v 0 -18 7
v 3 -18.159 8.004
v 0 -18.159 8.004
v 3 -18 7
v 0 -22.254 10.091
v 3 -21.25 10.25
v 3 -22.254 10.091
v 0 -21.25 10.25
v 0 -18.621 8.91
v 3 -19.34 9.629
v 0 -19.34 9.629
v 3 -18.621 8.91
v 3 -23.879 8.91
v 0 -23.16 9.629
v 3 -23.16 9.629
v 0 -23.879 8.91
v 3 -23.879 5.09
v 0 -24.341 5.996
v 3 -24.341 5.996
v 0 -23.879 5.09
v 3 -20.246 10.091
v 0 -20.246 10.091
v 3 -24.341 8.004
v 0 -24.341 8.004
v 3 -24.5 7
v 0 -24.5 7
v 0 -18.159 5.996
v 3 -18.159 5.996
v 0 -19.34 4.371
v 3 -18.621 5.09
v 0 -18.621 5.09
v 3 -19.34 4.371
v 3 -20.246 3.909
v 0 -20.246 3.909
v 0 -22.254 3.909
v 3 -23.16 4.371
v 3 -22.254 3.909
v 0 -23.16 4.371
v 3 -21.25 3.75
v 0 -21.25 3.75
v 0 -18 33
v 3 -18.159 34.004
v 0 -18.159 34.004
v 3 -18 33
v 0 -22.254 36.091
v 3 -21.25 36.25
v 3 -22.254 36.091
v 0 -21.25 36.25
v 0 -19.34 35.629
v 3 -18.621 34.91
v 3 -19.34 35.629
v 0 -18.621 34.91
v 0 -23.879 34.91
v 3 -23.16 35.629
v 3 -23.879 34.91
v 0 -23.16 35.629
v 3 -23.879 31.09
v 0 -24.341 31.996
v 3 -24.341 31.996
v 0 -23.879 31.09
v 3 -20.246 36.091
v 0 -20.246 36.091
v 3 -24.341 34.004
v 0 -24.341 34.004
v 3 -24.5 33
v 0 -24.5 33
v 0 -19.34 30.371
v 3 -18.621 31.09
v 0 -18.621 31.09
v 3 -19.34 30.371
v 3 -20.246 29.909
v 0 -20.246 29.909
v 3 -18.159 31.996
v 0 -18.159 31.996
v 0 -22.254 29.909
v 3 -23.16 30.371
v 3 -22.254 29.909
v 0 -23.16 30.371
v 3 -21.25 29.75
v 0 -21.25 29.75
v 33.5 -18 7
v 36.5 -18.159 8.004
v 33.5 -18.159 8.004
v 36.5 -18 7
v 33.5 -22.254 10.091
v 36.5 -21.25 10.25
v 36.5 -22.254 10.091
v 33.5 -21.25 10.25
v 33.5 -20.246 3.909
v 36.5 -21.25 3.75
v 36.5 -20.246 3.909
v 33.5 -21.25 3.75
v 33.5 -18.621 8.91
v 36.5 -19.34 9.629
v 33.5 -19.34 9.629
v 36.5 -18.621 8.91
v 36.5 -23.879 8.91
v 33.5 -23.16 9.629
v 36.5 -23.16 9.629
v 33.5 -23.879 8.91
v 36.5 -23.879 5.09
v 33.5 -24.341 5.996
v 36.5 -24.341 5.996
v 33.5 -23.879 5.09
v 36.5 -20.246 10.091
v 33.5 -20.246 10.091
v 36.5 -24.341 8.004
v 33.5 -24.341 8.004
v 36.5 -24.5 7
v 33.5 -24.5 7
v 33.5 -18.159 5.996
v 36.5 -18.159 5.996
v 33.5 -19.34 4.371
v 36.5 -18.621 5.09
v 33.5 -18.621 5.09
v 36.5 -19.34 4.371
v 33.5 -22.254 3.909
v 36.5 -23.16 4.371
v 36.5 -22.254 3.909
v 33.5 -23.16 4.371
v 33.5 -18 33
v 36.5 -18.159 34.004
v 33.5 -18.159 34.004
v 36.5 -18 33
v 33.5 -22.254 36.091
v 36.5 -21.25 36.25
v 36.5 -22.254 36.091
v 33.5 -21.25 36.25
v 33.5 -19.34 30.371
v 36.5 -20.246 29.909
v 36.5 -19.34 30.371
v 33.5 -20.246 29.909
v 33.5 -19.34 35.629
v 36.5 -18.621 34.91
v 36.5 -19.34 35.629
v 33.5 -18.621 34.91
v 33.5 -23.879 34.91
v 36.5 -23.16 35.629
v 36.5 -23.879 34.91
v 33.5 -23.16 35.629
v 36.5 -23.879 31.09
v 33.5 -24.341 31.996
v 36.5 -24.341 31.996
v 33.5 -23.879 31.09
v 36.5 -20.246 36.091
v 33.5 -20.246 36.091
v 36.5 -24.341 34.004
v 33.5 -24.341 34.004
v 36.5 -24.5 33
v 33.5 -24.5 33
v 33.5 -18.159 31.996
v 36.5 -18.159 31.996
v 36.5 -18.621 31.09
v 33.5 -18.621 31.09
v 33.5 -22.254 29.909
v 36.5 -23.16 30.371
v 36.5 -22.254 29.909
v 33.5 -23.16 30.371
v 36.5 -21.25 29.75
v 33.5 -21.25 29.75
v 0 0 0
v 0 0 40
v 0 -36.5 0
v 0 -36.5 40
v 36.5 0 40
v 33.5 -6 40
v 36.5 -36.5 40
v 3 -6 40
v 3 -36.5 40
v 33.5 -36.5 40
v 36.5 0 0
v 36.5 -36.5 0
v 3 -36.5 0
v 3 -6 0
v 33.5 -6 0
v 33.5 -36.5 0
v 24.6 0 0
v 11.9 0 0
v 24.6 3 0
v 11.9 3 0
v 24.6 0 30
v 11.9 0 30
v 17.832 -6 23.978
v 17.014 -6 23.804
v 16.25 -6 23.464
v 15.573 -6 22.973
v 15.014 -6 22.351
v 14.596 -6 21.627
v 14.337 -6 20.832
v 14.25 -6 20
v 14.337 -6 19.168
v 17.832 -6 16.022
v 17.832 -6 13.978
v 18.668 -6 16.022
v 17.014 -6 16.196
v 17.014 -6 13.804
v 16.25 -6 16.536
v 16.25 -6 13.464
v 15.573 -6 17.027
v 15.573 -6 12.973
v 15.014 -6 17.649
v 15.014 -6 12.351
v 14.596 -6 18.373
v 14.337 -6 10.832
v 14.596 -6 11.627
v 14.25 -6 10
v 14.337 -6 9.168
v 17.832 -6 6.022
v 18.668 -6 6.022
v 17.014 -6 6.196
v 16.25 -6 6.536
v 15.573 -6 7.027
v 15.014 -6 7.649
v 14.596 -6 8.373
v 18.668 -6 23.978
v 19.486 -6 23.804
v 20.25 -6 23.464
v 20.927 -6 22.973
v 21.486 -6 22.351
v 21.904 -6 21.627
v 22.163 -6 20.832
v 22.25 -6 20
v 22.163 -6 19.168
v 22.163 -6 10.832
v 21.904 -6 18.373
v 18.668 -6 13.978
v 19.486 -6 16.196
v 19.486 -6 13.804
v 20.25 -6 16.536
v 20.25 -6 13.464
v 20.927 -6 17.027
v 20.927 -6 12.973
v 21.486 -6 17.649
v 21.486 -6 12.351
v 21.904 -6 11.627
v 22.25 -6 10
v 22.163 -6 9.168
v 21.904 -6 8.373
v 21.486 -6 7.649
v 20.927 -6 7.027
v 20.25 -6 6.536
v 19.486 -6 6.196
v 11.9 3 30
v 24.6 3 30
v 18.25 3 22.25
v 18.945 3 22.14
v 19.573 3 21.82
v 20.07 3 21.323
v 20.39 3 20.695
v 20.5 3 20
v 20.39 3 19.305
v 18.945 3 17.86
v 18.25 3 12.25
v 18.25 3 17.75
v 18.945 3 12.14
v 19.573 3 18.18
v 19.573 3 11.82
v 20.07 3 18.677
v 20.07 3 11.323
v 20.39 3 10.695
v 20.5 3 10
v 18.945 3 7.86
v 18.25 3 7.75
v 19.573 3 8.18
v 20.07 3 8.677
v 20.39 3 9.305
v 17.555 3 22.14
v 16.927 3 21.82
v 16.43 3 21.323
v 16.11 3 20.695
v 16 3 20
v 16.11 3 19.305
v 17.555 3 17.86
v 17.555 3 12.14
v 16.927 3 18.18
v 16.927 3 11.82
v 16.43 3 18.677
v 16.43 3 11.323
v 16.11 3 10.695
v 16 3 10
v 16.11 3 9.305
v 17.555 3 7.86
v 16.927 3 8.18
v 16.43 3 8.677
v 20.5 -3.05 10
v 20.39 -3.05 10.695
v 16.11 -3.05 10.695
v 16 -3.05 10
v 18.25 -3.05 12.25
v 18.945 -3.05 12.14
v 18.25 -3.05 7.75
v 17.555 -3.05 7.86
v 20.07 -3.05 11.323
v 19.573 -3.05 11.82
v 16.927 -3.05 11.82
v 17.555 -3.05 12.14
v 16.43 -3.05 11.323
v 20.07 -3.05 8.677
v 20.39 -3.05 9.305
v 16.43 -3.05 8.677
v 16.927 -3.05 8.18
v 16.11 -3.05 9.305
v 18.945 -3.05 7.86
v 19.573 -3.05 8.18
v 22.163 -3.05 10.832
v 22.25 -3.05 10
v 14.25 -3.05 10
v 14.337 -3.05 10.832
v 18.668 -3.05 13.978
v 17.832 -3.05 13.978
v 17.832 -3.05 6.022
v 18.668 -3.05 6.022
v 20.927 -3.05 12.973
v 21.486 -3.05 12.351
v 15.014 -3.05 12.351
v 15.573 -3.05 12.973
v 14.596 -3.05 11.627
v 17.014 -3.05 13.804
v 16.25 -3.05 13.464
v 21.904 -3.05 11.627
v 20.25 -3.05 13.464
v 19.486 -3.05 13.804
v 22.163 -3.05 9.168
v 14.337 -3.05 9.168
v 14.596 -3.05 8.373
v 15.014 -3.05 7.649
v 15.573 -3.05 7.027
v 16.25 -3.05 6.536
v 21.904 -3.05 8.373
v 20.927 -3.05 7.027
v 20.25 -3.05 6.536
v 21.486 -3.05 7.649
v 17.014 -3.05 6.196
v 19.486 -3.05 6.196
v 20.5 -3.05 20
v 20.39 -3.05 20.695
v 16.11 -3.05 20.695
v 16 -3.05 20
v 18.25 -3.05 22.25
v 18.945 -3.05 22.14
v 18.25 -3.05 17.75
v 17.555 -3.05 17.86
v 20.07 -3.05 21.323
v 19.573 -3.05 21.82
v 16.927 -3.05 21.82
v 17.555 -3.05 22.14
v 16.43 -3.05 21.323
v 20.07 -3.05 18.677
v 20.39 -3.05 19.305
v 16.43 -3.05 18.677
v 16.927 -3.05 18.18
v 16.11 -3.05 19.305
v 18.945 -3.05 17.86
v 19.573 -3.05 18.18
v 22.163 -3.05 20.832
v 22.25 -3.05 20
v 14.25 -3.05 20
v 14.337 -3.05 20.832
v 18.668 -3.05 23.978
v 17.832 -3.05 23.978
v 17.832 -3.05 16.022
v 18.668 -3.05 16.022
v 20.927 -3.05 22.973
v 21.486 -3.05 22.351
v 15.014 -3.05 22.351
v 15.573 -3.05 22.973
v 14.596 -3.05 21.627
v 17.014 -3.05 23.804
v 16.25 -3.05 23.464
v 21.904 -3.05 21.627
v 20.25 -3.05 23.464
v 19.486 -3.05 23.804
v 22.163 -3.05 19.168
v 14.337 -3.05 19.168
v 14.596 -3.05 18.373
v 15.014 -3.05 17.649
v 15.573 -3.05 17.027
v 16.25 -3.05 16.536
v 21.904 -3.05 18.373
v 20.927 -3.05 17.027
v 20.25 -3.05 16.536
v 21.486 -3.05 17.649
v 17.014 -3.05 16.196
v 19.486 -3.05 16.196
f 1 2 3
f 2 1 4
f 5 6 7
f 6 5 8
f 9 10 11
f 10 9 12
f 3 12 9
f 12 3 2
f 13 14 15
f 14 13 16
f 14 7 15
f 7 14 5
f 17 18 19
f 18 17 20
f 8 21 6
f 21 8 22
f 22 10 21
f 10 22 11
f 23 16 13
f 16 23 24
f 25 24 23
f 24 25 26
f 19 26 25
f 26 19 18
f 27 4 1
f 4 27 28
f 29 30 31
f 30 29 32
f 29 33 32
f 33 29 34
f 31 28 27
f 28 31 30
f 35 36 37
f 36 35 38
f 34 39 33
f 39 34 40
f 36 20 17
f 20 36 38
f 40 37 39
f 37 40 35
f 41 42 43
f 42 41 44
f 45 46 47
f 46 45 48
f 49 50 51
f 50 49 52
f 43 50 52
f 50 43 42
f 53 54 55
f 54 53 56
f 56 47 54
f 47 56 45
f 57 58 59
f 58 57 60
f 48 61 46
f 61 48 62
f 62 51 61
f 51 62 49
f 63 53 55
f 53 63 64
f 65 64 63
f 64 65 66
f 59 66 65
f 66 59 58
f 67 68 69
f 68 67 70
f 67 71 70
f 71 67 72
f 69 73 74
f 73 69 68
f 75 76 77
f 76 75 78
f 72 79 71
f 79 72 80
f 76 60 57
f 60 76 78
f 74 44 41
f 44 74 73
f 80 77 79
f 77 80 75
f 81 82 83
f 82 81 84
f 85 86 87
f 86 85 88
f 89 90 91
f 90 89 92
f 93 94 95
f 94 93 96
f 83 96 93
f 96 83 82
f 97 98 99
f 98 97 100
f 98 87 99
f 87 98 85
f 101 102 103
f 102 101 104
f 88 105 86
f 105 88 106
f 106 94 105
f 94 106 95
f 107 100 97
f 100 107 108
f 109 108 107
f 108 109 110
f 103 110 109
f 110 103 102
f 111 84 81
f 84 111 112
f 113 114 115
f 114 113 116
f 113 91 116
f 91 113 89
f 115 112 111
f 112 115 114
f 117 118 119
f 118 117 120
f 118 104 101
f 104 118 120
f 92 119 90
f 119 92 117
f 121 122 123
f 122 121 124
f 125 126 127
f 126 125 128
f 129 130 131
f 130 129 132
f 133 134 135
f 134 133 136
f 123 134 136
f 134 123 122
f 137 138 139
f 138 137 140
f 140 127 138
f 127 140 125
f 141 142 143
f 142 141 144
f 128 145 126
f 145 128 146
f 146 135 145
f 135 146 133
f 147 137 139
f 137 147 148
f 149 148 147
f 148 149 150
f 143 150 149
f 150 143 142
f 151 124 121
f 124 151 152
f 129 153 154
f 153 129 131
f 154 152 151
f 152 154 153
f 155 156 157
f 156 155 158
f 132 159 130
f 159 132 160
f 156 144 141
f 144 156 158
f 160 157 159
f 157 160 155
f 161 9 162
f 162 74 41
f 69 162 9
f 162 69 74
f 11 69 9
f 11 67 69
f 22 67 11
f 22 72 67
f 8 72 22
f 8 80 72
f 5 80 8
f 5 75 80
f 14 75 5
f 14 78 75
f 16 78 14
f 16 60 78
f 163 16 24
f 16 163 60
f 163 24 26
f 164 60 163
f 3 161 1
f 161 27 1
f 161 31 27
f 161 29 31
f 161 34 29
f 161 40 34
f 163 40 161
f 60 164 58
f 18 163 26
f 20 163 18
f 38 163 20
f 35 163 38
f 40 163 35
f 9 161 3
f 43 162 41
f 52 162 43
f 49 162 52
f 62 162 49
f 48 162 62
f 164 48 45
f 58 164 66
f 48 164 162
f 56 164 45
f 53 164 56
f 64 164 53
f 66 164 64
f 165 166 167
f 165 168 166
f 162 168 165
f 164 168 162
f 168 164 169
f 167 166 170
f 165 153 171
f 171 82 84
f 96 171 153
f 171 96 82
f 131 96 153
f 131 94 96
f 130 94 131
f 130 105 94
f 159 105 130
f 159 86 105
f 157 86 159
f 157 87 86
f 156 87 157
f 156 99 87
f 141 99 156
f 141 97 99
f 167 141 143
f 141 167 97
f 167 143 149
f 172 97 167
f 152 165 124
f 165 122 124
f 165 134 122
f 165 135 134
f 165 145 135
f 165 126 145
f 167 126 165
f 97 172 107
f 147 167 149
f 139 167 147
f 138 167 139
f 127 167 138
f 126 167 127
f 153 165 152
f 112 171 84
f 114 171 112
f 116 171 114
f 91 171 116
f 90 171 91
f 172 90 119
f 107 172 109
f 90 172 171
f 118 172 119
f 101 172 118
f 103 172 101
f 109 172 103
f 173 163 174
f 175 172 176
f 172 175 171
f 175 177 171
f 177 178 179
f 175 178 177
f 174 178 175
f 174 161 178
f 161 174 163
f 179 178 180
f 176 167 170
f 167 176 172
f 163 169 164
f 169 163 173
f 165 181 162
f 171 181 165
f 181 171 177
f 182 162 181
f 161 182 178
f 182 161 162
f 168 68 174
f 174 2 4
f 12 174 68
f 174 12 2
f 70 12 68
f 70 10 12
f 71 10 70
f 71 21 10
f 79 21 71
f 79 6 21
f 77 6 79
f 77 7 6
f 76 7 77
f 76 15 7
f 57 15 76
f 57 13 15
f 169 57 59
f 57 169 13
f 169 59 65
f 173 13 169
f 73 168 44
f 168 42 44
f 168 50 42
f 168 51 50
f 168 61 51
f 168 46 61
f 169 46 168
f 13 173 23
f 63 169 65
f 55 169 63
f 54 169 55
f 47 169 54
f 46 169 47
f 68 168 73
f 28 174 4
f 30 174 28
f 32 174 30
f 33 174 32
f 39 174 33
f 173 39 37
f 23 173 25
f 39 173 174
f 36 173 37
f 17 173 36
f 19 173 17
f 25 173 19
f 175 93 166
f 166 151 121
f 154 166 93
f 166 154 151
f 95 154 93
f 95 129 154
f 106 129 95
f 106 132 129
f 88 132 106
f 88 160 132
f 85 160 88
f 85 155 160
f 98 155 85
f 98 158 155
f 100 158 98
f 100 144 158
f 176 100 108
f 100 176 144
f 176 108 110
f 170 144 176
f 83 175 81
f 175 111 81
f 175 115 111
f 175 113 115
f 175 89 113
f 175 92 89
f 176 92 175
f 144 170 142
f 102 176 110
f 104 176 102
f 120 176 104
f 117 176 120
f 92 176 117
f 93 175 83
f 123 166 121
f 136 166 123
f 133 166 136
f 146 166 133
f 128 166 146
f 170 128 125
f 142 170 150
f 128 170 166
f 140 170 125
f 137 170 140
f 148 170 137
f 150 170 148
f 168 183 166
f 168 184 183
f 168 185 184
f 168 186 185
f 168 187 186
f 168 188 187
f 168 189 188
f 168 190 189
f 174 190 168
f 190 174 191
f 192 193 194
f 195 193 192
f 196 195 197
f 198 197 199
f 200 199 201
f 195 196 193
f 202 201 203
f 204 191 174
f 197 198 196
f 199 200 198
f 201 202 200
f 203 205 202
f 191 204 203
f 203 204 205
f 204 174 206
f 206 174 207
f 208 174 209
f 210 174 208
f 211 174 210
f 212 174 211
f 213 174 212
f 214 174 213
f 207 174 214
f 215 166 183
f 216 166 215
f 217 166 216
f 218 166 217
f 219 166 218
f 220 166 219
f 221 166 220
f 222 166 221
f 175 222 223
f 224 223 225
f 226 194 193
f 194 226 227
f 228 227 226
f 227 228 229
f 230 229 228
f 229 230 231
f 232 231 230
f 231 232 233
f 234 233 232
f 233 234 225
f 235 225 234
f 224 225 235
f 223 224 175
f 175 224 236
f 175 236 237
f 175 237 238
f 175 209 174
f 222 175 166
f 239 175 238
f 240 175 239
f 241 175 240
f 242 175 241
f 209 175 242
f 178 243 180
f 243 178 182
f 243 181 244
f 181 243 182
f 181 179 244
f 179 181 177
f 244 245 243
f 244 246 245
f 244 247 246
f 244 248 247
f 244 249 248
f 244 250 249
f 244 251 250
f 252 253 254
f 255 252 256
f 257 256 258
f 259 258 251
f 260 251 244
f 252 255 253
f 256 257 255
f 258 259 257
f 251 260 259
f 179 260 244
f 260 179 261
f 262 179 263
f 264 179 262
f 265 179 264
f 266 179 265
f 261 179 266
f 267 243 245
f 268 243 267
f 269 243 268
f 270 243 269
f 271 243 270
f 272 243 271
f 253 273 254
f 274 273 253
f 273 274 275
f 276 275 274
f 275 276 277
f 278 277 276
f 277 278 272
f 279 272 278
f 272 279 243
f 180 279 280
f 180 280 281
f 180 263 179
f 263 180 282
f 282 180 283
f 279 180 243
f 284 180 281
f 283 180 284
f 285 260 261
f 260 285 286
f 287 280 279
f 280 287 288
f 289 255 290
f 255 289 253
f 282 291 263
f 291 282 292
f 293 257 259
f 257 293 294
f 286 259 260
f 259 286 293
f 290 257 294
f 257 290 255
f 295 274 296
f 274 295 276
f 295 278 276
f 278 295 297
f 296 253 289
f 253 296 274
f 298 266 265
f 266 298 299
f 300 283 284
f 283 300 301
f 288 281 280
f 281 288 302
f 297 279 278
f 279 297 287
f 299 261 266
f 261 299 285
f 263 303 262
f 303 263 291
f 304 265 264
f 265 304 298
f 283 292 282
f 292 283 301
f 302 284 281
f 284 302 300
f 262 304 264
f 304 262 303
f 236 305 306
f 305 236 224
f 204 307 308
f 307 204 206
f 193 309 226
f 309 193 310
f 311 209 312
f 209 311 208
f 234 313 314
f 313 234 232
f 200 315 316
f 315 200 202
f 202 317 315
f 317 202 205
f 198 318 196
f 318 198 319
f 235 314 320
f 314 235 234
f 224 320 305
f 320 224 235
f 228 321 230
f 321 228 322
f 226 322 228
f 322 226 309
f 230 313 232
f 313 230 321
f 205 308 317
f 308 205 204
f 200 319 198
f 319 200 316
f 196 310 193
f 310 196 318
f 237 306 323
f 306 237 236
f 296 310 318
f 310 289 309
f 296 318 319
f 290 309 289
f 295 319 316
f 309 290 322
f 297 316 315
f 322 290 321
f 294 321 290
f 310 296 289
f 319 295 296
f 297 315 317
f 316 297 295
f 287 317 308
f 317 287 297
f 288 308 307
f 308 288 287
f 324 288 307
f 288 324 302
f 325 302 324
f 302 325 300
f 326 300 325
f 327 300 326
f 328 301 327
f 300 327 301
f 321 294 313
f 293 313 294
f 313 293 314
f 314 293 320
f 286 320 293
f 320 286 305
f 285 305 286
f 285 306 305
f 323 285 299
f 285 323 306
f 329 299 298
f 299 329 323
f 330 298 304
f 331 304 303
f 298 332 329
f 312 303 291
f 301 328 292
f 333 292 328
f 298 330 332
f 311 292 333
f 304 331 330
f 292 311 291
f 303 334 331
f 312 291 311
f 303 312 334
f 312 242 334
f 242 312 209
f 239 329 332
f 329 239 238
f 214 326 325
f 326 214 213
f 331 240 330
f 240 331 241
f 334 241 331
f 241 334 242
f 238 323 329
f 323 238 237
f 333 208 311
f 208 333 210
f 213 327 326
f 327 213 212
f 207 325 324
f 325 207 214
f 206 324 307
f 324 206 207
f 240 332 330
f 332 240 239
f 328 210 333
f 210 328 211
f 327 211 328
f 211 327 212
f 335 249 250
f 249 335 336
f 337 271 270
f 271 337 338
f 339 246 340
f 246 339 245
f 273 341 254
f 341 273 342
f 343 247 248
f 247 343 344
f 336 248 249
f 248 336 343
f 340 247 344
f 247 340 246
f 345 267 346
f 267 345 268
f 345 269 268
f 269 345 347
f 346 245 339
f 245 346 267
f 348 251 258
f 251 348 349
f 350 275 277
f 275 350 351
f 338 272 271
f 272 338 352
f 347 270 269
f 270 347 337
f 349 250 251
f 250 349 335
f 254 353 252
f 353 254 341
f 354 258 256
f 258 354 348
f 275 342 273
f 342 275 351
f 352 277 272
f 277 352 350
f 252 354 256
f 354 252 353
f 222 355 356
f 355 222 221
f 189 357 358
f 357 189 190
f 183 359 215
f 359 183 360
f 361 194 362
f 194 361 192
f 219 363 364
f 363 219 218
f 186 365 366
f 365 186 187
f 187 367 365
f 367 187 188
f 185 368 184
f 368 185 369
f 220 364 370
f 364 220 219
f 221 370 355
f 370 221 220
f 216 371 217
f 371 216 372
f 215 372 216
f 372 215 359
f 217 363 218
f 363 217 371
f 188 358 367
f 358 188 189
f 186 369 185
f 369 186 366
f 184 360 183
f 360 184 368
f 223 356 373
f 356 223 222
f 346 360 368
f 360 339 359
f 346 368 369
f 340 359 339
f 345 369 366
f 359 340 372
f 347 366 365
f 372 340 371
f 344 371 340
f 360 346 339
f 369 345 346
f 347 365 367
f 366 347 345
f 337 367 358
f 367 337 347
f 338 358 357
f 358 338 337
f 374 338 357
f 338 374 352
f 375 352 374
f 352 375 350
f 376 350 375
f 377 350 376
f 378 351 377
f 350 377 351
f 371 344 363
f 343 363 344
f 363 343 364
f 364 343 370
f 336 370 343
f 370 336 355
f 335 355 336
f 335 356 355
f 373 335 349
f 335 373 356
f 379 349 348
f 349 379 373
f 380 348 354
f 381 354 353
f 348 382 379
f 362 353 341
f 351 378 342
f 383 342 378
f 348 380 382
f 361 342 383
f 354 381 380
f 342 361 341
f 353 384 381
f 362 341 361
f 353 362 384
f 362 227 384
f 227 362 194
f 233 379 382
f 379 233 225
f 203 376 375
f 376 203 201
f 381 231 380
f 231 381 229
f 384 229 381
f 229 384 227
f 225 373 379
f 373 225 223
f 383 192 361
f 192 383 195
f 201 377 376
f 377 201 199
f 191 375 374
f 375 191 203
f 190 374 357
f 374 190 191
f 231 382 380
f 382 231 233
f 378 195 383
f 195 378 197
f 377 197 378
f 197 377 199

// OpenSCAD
// file: lib/ALU_profile_holder_side.scad
include <../../parameters.scad>

module ALU_profile_holder_side(height) {
    wall_thickness = ALU_profile_holder_wall_thickness;
    
    //díry na přišroubování k Al profilům
    module screws_holes(diameter) {
        translate([0, 0, 7])
            rotate([90, 0, 90])
                cylinder(d=diameter, h=wall_thickness*2, center=true, $fn=20);
        
        translate([0, 0, height-7])
            rotate([90, 0, 90])
                cylinder(d=diameter, h=wall_thickness*2, center=true, $fn=20);
    }
    
    difference() {
        cube([ALU_profile_width+wall_thickness*2, ALU_profile_width + wall_thickness*2, height]);

        translate([wall_thickness, -0.1, -0.1])
            cube([ALU_profile_width, ALU_profile_width + 0.1, height + 0.2]);
        
        translate([wall_thickness*0.5, ALU_profile_width/2, 0]) {
            screws_holes(M6_screw_diameter);
            translate([ALU_profile_width+wall_thickness, 0, 0]) {
                screws_holes(M6_screw_diameter);
            }
        }
    }
}

ALU_profile_holder_side(30);
// file: ../parameters.scad
maximum_printable_size = 150;

layer_thickness = 0.3;
global_clearance = 0.5;


//Screw diameter and nut for M10 [mm]
M10_screw_diameter = 10.4;
M10_head_height = 10;
M10_head_diameter = 16+0.5;
M10_nut_height = 10.5;
M10_nut_diameter = 25.5;
M10_nut_pocket = 22.3;

//Screw diameter for M8 [mm]
M8_screw_diameter = 8.6;
M8_head_height = 8;
M8_head_diameter = 13.5;
M8_nut_height = 7.5;
M8_square_nut_thin_height = 4.5;
M8_nut_diameter = 14.4 + 0.5;
M8_nut_pocket = 13 + 0.5;
M8_washer_diameter = 16;
M8_washer_thickness = 1.5;


//Screw diameter and nut for M6 [mm]
M6_screw_diameter=6.5;
M6_head_diameter = 10+0.5;
M6_head_height = 6;
M6_nut_height = 4.9;
M6_nut_diameter = 11.8;
M6_nut_pocket = 10.4;
M6_square_nut_height = 3;
M6_square_nut_diameter = 10;
M6_washer_thickness = 1.6;

//Screw diameter and nut for M5 [mm]
M5_screw_diameter=5.5;
M5_head_height = 5;
M5_head_diameter = 13+0.5;
M5_nut_height = 4.5;
M5_nut_diameter = 9.4;
M5_nut_pocket = 8.4;

//Screw diameter and nut for M4 [mm]
M4_screw_diameter=4.5;
M4_screw_head_height = 4;
M4_nut_height = 3.2;
M4_nut_diameter = 8.4;
M4_nut_pocket = 7.5;

//Screw diameter and nut for M3 [mm]
M3_screw_diameter = 3.2;
M3_nut_height = 2.7;
M3_nut_diameter = 6.6;
M3_nut_pocket = 5.6;
M3_screw_head_height = 3;

//Screw diameter and nut for M2,5 [mm]
M2_5_screw_diameter = 2.7;
M2_5_nut_height = 2.3;
M2_5_nut_diameter = 6;
M2_5_nut_pocket = 5.5;

// kulove lozisko

bearing_efsm_08_h = 33+1;
bearing_efsm_08_m = 22;
bearing_efsm_08_db = 18;
bearing_efsm_08_ag = 10.5;
bearing_efsm_08_n = M4_screw_diameter;
bearing_efsm_08_a1 = 5.5;
bearing_efsm_08_d = 8.25;
bearing_efsm_08_B = 8; // ball height

bearing_efsm_10_h = 38+1;
bearing_efsm_10_m = 26;
bearing_efsm_10_db = 21.9;
bearing_efsm_10_ag = 12+0.2;
bearing_efsm_10_n = M5_screw_diameter;
bearing_efsm_10_a1 = 6.5;
bearing_efsm_10_d = 10.25;


bearing_efsm_12_width = 40+1;
bearing_efsm_12_h = bearing_efsm_12_width;
bearing_efsm_12_boltd = 28/2; // polovina vzdalenosti mezi srouby
bearing_efsm_12_m = bearing_efsm_12_boltd*2;
bearing_efsm_12_db = 25;
bearing_efsm_12_ag = 13;
bearing_efsm_12_a1 = 7;
bearing_efsm_12_n = M5_screw_diameter;
bearing_efsm_12_d = 12.15;
bearing_efsm_12_B = 10; // ball height
bearing_efsm_space = 1;

bearing_efsm_17_width = 54+1;
bearing_efsm_17_h = bearing_efsm_17_width;
bearing_efsm_17_boltd = 38/2; // polovina vzdalenosti mezi srouby
bearing_efsm_17_m = bearing_efsm_17_boltd*2;
bearing_efsm_17_db = 35;
bearing_efsm_17_ag = 18;
bearing_efsm_17_n = M6_screw_diameter;
bearing_efsm_17_a1 = 10;
bearing_efsm_17_B = 17; // ball height

//limcove lozisko
bearing_EFOM_10_L=26; //celkova sirka zakladny
bearing_EFOM_10_d1=10.3;//diametr otvoru real=10 mm
bearing_EFOM_10_dB=22;//diametr vystupku pro ulozeni lozika
bearing_EFOM_10_H=52;//celková delka zakladny
bearing_EFOM_10_J=36;// hole pitch
bearing_EFOM_10_A1=6.5;//vyska pouzdra
bearing_EFOM_10_Ag=12;//celkova vyska
bearing_EFOM_10_N1=5;//sirka otvoru pro sroub
bearing_EFOM_10_N2=8;//delka otvoru pro sroub
bearing_EFOM_10_m=36;//roztec der pro sroub
bearing_EFOM_10_h=9;//vyska lozika


608_bearing_outer_diameter = 22.3;
608_bearing_inner_diameter = 16;
608_bearing_thickness = 7.1;


// 20 KG servo parameters

servo_20kg_axis_offset = 9.375; // jak je osa mimo stredu
servo_20kg_body_x = 42;
servo_20kg_body_y = 21;
servo_20kg_body_z = 40;
servo_20kg_thread_x = 49/2;
servo_20kg_thread_y = 10/2;
servo_20kg_body_below = 10; // jak hluboko je tělo serva pod drzaky na srouby
servo_20kg_below = 25.8; // jak hluboko je páka serva pod drzaky na srouby

servo_20kg_bolt_d = 2.5+0.3;
servo_20kg_nut_d = 5+0.3;


//strain gauge
strain_gauge_width = 12.7;
strain_gauge_length = 75.1;
strain_gauge_screw_distance = 10;

//ALU profile
ALU_profile_width = 30.5;
ALU_profile_holder_wall_thickness = 3;
ALU_profile_groove_width = 8;

//pillow block bearing
//https://www.igus.eu/product/372
//Part no. KSTM-08
KSTM08_screws_distance = 33;         //m
KSTM08_screws_holes_diameter = 4.5;  //d2
KSTM08_flange_thickness = 6;         //h3
KSTM08_case_width = 9;               //C1
KSTM08_case_length = 47;             //a
KSTM08_ball_width = 12;              //B
KSTM08_ball_hole_diameter = 7.85;    //d1


//ložiska pro malý rotor
bearing_outer_diameter = 10.2;    // Rozměr B1 v nákresu s přídavkem na toleranci otvoru
bearing_thickness = 4;        // Rozměr B2 v nákresu
//bearing_shaft_length = 19.5;    // Rozměr B3 v nákresu, Originalni hodnota 19.5
bearing_shaft_length = 20;    // Rozměr B3 v nákresu


//parametry víčka s telemetrickou anténou
S01_sila_materialu=1.2;
S01_vyska_horni_zavit=10;
S01_hloubka_zavitu=4;
S01_prumer_vnitrni=50;
LO_spodni_prumer=17.2;
LO_vyska_bez_krytu=15;
S01_tolerance_zavit=1.5;
R01_vyska_prekryti_statoru=10;

g3_0_cone1 = 70;
g3_0_srcew_dist = 55;



// scale parameters
base_length = 500;
mid_base_width = 500;
mid_base_height = 200;
mid_base_length = 500;
mid_base_x_offset = 50;
base_mid_base_hinge_offset = 50;
tower_height = 185;
tower_angle = atan((mid_base_width/2-ALU_profile_width-10)/tower_height);
tower_arm_length = tower_height/cos(tower_angle);
tower_drag_z_offset = 22;
electro_box_length = 225;
electro_box_width = 165;
electro_box_height = 51.5;

// calibration device parameters
calibration_arm_x_offset = 140;
calibration_arm_y_offset = 50;

// rotor paramters
rotor_blades_count = 2;
rotor_delta_angle = 12;
blade_mount_screw = M3_screw_diameter;
blade_mount_nut = M3_nut_diameter;
// main file
include <../parameters.scad>
use <./lib/ALU_profile_holder_side.scad>

module 888_5001() {
    
    m4_head_diameter = 8;
    m4_head_height = 3;
    
    wall_thickness = ALU_profile_holder_wall_thickness;
    
    difference() {
        union() {
            translate([0, -ALU_profile_width-wall_thickness*2, 0])
                ALU_profile_holder_side(strain_gauge_screw_distance+30);
            
            translate([(ALU_profile_width+wall_thickness*2)/2-strain_gauge_width/2, 0, 0])
                cube([strain_gauge_width, m4_head_height, strain_gauge_screw_distance+20]);
        }
        
        translate([(ALU_profile_width+wall_thickness*2)/2, 0, 10]) {
            rotate([90, 0, 0]) {
                cylinder(d=M4_screw_diameter, h=wall_thickness*5+m4_head_height, $fn=20, center=true);
                translate([0, 0, wall_thickness*2-m4_head_height/2+0.1])
                    cylinder(d=m4_head_diameter, h=m4_head_height+0.1, center=true, $fn=30);
            }
        }
        translate([(ALU_profile_width+wall_thickness*2)/2, 0, strain_gauge_screw_distance+10]) {
            rotate([90, 0, 0]) {
                cylinder(d=M4_screw_diameter, h=wall_thickness*5+m4_head_height, $fn=20, center=true);
                translate([0, 0, wall_thickness*2-m4_head_height/2+0.1])
                    cylinder(d=m4_head_diameter, h=m4_head_height+0.1, center=true, $fn=30);
            }
        }
    }
}

888_5001();
